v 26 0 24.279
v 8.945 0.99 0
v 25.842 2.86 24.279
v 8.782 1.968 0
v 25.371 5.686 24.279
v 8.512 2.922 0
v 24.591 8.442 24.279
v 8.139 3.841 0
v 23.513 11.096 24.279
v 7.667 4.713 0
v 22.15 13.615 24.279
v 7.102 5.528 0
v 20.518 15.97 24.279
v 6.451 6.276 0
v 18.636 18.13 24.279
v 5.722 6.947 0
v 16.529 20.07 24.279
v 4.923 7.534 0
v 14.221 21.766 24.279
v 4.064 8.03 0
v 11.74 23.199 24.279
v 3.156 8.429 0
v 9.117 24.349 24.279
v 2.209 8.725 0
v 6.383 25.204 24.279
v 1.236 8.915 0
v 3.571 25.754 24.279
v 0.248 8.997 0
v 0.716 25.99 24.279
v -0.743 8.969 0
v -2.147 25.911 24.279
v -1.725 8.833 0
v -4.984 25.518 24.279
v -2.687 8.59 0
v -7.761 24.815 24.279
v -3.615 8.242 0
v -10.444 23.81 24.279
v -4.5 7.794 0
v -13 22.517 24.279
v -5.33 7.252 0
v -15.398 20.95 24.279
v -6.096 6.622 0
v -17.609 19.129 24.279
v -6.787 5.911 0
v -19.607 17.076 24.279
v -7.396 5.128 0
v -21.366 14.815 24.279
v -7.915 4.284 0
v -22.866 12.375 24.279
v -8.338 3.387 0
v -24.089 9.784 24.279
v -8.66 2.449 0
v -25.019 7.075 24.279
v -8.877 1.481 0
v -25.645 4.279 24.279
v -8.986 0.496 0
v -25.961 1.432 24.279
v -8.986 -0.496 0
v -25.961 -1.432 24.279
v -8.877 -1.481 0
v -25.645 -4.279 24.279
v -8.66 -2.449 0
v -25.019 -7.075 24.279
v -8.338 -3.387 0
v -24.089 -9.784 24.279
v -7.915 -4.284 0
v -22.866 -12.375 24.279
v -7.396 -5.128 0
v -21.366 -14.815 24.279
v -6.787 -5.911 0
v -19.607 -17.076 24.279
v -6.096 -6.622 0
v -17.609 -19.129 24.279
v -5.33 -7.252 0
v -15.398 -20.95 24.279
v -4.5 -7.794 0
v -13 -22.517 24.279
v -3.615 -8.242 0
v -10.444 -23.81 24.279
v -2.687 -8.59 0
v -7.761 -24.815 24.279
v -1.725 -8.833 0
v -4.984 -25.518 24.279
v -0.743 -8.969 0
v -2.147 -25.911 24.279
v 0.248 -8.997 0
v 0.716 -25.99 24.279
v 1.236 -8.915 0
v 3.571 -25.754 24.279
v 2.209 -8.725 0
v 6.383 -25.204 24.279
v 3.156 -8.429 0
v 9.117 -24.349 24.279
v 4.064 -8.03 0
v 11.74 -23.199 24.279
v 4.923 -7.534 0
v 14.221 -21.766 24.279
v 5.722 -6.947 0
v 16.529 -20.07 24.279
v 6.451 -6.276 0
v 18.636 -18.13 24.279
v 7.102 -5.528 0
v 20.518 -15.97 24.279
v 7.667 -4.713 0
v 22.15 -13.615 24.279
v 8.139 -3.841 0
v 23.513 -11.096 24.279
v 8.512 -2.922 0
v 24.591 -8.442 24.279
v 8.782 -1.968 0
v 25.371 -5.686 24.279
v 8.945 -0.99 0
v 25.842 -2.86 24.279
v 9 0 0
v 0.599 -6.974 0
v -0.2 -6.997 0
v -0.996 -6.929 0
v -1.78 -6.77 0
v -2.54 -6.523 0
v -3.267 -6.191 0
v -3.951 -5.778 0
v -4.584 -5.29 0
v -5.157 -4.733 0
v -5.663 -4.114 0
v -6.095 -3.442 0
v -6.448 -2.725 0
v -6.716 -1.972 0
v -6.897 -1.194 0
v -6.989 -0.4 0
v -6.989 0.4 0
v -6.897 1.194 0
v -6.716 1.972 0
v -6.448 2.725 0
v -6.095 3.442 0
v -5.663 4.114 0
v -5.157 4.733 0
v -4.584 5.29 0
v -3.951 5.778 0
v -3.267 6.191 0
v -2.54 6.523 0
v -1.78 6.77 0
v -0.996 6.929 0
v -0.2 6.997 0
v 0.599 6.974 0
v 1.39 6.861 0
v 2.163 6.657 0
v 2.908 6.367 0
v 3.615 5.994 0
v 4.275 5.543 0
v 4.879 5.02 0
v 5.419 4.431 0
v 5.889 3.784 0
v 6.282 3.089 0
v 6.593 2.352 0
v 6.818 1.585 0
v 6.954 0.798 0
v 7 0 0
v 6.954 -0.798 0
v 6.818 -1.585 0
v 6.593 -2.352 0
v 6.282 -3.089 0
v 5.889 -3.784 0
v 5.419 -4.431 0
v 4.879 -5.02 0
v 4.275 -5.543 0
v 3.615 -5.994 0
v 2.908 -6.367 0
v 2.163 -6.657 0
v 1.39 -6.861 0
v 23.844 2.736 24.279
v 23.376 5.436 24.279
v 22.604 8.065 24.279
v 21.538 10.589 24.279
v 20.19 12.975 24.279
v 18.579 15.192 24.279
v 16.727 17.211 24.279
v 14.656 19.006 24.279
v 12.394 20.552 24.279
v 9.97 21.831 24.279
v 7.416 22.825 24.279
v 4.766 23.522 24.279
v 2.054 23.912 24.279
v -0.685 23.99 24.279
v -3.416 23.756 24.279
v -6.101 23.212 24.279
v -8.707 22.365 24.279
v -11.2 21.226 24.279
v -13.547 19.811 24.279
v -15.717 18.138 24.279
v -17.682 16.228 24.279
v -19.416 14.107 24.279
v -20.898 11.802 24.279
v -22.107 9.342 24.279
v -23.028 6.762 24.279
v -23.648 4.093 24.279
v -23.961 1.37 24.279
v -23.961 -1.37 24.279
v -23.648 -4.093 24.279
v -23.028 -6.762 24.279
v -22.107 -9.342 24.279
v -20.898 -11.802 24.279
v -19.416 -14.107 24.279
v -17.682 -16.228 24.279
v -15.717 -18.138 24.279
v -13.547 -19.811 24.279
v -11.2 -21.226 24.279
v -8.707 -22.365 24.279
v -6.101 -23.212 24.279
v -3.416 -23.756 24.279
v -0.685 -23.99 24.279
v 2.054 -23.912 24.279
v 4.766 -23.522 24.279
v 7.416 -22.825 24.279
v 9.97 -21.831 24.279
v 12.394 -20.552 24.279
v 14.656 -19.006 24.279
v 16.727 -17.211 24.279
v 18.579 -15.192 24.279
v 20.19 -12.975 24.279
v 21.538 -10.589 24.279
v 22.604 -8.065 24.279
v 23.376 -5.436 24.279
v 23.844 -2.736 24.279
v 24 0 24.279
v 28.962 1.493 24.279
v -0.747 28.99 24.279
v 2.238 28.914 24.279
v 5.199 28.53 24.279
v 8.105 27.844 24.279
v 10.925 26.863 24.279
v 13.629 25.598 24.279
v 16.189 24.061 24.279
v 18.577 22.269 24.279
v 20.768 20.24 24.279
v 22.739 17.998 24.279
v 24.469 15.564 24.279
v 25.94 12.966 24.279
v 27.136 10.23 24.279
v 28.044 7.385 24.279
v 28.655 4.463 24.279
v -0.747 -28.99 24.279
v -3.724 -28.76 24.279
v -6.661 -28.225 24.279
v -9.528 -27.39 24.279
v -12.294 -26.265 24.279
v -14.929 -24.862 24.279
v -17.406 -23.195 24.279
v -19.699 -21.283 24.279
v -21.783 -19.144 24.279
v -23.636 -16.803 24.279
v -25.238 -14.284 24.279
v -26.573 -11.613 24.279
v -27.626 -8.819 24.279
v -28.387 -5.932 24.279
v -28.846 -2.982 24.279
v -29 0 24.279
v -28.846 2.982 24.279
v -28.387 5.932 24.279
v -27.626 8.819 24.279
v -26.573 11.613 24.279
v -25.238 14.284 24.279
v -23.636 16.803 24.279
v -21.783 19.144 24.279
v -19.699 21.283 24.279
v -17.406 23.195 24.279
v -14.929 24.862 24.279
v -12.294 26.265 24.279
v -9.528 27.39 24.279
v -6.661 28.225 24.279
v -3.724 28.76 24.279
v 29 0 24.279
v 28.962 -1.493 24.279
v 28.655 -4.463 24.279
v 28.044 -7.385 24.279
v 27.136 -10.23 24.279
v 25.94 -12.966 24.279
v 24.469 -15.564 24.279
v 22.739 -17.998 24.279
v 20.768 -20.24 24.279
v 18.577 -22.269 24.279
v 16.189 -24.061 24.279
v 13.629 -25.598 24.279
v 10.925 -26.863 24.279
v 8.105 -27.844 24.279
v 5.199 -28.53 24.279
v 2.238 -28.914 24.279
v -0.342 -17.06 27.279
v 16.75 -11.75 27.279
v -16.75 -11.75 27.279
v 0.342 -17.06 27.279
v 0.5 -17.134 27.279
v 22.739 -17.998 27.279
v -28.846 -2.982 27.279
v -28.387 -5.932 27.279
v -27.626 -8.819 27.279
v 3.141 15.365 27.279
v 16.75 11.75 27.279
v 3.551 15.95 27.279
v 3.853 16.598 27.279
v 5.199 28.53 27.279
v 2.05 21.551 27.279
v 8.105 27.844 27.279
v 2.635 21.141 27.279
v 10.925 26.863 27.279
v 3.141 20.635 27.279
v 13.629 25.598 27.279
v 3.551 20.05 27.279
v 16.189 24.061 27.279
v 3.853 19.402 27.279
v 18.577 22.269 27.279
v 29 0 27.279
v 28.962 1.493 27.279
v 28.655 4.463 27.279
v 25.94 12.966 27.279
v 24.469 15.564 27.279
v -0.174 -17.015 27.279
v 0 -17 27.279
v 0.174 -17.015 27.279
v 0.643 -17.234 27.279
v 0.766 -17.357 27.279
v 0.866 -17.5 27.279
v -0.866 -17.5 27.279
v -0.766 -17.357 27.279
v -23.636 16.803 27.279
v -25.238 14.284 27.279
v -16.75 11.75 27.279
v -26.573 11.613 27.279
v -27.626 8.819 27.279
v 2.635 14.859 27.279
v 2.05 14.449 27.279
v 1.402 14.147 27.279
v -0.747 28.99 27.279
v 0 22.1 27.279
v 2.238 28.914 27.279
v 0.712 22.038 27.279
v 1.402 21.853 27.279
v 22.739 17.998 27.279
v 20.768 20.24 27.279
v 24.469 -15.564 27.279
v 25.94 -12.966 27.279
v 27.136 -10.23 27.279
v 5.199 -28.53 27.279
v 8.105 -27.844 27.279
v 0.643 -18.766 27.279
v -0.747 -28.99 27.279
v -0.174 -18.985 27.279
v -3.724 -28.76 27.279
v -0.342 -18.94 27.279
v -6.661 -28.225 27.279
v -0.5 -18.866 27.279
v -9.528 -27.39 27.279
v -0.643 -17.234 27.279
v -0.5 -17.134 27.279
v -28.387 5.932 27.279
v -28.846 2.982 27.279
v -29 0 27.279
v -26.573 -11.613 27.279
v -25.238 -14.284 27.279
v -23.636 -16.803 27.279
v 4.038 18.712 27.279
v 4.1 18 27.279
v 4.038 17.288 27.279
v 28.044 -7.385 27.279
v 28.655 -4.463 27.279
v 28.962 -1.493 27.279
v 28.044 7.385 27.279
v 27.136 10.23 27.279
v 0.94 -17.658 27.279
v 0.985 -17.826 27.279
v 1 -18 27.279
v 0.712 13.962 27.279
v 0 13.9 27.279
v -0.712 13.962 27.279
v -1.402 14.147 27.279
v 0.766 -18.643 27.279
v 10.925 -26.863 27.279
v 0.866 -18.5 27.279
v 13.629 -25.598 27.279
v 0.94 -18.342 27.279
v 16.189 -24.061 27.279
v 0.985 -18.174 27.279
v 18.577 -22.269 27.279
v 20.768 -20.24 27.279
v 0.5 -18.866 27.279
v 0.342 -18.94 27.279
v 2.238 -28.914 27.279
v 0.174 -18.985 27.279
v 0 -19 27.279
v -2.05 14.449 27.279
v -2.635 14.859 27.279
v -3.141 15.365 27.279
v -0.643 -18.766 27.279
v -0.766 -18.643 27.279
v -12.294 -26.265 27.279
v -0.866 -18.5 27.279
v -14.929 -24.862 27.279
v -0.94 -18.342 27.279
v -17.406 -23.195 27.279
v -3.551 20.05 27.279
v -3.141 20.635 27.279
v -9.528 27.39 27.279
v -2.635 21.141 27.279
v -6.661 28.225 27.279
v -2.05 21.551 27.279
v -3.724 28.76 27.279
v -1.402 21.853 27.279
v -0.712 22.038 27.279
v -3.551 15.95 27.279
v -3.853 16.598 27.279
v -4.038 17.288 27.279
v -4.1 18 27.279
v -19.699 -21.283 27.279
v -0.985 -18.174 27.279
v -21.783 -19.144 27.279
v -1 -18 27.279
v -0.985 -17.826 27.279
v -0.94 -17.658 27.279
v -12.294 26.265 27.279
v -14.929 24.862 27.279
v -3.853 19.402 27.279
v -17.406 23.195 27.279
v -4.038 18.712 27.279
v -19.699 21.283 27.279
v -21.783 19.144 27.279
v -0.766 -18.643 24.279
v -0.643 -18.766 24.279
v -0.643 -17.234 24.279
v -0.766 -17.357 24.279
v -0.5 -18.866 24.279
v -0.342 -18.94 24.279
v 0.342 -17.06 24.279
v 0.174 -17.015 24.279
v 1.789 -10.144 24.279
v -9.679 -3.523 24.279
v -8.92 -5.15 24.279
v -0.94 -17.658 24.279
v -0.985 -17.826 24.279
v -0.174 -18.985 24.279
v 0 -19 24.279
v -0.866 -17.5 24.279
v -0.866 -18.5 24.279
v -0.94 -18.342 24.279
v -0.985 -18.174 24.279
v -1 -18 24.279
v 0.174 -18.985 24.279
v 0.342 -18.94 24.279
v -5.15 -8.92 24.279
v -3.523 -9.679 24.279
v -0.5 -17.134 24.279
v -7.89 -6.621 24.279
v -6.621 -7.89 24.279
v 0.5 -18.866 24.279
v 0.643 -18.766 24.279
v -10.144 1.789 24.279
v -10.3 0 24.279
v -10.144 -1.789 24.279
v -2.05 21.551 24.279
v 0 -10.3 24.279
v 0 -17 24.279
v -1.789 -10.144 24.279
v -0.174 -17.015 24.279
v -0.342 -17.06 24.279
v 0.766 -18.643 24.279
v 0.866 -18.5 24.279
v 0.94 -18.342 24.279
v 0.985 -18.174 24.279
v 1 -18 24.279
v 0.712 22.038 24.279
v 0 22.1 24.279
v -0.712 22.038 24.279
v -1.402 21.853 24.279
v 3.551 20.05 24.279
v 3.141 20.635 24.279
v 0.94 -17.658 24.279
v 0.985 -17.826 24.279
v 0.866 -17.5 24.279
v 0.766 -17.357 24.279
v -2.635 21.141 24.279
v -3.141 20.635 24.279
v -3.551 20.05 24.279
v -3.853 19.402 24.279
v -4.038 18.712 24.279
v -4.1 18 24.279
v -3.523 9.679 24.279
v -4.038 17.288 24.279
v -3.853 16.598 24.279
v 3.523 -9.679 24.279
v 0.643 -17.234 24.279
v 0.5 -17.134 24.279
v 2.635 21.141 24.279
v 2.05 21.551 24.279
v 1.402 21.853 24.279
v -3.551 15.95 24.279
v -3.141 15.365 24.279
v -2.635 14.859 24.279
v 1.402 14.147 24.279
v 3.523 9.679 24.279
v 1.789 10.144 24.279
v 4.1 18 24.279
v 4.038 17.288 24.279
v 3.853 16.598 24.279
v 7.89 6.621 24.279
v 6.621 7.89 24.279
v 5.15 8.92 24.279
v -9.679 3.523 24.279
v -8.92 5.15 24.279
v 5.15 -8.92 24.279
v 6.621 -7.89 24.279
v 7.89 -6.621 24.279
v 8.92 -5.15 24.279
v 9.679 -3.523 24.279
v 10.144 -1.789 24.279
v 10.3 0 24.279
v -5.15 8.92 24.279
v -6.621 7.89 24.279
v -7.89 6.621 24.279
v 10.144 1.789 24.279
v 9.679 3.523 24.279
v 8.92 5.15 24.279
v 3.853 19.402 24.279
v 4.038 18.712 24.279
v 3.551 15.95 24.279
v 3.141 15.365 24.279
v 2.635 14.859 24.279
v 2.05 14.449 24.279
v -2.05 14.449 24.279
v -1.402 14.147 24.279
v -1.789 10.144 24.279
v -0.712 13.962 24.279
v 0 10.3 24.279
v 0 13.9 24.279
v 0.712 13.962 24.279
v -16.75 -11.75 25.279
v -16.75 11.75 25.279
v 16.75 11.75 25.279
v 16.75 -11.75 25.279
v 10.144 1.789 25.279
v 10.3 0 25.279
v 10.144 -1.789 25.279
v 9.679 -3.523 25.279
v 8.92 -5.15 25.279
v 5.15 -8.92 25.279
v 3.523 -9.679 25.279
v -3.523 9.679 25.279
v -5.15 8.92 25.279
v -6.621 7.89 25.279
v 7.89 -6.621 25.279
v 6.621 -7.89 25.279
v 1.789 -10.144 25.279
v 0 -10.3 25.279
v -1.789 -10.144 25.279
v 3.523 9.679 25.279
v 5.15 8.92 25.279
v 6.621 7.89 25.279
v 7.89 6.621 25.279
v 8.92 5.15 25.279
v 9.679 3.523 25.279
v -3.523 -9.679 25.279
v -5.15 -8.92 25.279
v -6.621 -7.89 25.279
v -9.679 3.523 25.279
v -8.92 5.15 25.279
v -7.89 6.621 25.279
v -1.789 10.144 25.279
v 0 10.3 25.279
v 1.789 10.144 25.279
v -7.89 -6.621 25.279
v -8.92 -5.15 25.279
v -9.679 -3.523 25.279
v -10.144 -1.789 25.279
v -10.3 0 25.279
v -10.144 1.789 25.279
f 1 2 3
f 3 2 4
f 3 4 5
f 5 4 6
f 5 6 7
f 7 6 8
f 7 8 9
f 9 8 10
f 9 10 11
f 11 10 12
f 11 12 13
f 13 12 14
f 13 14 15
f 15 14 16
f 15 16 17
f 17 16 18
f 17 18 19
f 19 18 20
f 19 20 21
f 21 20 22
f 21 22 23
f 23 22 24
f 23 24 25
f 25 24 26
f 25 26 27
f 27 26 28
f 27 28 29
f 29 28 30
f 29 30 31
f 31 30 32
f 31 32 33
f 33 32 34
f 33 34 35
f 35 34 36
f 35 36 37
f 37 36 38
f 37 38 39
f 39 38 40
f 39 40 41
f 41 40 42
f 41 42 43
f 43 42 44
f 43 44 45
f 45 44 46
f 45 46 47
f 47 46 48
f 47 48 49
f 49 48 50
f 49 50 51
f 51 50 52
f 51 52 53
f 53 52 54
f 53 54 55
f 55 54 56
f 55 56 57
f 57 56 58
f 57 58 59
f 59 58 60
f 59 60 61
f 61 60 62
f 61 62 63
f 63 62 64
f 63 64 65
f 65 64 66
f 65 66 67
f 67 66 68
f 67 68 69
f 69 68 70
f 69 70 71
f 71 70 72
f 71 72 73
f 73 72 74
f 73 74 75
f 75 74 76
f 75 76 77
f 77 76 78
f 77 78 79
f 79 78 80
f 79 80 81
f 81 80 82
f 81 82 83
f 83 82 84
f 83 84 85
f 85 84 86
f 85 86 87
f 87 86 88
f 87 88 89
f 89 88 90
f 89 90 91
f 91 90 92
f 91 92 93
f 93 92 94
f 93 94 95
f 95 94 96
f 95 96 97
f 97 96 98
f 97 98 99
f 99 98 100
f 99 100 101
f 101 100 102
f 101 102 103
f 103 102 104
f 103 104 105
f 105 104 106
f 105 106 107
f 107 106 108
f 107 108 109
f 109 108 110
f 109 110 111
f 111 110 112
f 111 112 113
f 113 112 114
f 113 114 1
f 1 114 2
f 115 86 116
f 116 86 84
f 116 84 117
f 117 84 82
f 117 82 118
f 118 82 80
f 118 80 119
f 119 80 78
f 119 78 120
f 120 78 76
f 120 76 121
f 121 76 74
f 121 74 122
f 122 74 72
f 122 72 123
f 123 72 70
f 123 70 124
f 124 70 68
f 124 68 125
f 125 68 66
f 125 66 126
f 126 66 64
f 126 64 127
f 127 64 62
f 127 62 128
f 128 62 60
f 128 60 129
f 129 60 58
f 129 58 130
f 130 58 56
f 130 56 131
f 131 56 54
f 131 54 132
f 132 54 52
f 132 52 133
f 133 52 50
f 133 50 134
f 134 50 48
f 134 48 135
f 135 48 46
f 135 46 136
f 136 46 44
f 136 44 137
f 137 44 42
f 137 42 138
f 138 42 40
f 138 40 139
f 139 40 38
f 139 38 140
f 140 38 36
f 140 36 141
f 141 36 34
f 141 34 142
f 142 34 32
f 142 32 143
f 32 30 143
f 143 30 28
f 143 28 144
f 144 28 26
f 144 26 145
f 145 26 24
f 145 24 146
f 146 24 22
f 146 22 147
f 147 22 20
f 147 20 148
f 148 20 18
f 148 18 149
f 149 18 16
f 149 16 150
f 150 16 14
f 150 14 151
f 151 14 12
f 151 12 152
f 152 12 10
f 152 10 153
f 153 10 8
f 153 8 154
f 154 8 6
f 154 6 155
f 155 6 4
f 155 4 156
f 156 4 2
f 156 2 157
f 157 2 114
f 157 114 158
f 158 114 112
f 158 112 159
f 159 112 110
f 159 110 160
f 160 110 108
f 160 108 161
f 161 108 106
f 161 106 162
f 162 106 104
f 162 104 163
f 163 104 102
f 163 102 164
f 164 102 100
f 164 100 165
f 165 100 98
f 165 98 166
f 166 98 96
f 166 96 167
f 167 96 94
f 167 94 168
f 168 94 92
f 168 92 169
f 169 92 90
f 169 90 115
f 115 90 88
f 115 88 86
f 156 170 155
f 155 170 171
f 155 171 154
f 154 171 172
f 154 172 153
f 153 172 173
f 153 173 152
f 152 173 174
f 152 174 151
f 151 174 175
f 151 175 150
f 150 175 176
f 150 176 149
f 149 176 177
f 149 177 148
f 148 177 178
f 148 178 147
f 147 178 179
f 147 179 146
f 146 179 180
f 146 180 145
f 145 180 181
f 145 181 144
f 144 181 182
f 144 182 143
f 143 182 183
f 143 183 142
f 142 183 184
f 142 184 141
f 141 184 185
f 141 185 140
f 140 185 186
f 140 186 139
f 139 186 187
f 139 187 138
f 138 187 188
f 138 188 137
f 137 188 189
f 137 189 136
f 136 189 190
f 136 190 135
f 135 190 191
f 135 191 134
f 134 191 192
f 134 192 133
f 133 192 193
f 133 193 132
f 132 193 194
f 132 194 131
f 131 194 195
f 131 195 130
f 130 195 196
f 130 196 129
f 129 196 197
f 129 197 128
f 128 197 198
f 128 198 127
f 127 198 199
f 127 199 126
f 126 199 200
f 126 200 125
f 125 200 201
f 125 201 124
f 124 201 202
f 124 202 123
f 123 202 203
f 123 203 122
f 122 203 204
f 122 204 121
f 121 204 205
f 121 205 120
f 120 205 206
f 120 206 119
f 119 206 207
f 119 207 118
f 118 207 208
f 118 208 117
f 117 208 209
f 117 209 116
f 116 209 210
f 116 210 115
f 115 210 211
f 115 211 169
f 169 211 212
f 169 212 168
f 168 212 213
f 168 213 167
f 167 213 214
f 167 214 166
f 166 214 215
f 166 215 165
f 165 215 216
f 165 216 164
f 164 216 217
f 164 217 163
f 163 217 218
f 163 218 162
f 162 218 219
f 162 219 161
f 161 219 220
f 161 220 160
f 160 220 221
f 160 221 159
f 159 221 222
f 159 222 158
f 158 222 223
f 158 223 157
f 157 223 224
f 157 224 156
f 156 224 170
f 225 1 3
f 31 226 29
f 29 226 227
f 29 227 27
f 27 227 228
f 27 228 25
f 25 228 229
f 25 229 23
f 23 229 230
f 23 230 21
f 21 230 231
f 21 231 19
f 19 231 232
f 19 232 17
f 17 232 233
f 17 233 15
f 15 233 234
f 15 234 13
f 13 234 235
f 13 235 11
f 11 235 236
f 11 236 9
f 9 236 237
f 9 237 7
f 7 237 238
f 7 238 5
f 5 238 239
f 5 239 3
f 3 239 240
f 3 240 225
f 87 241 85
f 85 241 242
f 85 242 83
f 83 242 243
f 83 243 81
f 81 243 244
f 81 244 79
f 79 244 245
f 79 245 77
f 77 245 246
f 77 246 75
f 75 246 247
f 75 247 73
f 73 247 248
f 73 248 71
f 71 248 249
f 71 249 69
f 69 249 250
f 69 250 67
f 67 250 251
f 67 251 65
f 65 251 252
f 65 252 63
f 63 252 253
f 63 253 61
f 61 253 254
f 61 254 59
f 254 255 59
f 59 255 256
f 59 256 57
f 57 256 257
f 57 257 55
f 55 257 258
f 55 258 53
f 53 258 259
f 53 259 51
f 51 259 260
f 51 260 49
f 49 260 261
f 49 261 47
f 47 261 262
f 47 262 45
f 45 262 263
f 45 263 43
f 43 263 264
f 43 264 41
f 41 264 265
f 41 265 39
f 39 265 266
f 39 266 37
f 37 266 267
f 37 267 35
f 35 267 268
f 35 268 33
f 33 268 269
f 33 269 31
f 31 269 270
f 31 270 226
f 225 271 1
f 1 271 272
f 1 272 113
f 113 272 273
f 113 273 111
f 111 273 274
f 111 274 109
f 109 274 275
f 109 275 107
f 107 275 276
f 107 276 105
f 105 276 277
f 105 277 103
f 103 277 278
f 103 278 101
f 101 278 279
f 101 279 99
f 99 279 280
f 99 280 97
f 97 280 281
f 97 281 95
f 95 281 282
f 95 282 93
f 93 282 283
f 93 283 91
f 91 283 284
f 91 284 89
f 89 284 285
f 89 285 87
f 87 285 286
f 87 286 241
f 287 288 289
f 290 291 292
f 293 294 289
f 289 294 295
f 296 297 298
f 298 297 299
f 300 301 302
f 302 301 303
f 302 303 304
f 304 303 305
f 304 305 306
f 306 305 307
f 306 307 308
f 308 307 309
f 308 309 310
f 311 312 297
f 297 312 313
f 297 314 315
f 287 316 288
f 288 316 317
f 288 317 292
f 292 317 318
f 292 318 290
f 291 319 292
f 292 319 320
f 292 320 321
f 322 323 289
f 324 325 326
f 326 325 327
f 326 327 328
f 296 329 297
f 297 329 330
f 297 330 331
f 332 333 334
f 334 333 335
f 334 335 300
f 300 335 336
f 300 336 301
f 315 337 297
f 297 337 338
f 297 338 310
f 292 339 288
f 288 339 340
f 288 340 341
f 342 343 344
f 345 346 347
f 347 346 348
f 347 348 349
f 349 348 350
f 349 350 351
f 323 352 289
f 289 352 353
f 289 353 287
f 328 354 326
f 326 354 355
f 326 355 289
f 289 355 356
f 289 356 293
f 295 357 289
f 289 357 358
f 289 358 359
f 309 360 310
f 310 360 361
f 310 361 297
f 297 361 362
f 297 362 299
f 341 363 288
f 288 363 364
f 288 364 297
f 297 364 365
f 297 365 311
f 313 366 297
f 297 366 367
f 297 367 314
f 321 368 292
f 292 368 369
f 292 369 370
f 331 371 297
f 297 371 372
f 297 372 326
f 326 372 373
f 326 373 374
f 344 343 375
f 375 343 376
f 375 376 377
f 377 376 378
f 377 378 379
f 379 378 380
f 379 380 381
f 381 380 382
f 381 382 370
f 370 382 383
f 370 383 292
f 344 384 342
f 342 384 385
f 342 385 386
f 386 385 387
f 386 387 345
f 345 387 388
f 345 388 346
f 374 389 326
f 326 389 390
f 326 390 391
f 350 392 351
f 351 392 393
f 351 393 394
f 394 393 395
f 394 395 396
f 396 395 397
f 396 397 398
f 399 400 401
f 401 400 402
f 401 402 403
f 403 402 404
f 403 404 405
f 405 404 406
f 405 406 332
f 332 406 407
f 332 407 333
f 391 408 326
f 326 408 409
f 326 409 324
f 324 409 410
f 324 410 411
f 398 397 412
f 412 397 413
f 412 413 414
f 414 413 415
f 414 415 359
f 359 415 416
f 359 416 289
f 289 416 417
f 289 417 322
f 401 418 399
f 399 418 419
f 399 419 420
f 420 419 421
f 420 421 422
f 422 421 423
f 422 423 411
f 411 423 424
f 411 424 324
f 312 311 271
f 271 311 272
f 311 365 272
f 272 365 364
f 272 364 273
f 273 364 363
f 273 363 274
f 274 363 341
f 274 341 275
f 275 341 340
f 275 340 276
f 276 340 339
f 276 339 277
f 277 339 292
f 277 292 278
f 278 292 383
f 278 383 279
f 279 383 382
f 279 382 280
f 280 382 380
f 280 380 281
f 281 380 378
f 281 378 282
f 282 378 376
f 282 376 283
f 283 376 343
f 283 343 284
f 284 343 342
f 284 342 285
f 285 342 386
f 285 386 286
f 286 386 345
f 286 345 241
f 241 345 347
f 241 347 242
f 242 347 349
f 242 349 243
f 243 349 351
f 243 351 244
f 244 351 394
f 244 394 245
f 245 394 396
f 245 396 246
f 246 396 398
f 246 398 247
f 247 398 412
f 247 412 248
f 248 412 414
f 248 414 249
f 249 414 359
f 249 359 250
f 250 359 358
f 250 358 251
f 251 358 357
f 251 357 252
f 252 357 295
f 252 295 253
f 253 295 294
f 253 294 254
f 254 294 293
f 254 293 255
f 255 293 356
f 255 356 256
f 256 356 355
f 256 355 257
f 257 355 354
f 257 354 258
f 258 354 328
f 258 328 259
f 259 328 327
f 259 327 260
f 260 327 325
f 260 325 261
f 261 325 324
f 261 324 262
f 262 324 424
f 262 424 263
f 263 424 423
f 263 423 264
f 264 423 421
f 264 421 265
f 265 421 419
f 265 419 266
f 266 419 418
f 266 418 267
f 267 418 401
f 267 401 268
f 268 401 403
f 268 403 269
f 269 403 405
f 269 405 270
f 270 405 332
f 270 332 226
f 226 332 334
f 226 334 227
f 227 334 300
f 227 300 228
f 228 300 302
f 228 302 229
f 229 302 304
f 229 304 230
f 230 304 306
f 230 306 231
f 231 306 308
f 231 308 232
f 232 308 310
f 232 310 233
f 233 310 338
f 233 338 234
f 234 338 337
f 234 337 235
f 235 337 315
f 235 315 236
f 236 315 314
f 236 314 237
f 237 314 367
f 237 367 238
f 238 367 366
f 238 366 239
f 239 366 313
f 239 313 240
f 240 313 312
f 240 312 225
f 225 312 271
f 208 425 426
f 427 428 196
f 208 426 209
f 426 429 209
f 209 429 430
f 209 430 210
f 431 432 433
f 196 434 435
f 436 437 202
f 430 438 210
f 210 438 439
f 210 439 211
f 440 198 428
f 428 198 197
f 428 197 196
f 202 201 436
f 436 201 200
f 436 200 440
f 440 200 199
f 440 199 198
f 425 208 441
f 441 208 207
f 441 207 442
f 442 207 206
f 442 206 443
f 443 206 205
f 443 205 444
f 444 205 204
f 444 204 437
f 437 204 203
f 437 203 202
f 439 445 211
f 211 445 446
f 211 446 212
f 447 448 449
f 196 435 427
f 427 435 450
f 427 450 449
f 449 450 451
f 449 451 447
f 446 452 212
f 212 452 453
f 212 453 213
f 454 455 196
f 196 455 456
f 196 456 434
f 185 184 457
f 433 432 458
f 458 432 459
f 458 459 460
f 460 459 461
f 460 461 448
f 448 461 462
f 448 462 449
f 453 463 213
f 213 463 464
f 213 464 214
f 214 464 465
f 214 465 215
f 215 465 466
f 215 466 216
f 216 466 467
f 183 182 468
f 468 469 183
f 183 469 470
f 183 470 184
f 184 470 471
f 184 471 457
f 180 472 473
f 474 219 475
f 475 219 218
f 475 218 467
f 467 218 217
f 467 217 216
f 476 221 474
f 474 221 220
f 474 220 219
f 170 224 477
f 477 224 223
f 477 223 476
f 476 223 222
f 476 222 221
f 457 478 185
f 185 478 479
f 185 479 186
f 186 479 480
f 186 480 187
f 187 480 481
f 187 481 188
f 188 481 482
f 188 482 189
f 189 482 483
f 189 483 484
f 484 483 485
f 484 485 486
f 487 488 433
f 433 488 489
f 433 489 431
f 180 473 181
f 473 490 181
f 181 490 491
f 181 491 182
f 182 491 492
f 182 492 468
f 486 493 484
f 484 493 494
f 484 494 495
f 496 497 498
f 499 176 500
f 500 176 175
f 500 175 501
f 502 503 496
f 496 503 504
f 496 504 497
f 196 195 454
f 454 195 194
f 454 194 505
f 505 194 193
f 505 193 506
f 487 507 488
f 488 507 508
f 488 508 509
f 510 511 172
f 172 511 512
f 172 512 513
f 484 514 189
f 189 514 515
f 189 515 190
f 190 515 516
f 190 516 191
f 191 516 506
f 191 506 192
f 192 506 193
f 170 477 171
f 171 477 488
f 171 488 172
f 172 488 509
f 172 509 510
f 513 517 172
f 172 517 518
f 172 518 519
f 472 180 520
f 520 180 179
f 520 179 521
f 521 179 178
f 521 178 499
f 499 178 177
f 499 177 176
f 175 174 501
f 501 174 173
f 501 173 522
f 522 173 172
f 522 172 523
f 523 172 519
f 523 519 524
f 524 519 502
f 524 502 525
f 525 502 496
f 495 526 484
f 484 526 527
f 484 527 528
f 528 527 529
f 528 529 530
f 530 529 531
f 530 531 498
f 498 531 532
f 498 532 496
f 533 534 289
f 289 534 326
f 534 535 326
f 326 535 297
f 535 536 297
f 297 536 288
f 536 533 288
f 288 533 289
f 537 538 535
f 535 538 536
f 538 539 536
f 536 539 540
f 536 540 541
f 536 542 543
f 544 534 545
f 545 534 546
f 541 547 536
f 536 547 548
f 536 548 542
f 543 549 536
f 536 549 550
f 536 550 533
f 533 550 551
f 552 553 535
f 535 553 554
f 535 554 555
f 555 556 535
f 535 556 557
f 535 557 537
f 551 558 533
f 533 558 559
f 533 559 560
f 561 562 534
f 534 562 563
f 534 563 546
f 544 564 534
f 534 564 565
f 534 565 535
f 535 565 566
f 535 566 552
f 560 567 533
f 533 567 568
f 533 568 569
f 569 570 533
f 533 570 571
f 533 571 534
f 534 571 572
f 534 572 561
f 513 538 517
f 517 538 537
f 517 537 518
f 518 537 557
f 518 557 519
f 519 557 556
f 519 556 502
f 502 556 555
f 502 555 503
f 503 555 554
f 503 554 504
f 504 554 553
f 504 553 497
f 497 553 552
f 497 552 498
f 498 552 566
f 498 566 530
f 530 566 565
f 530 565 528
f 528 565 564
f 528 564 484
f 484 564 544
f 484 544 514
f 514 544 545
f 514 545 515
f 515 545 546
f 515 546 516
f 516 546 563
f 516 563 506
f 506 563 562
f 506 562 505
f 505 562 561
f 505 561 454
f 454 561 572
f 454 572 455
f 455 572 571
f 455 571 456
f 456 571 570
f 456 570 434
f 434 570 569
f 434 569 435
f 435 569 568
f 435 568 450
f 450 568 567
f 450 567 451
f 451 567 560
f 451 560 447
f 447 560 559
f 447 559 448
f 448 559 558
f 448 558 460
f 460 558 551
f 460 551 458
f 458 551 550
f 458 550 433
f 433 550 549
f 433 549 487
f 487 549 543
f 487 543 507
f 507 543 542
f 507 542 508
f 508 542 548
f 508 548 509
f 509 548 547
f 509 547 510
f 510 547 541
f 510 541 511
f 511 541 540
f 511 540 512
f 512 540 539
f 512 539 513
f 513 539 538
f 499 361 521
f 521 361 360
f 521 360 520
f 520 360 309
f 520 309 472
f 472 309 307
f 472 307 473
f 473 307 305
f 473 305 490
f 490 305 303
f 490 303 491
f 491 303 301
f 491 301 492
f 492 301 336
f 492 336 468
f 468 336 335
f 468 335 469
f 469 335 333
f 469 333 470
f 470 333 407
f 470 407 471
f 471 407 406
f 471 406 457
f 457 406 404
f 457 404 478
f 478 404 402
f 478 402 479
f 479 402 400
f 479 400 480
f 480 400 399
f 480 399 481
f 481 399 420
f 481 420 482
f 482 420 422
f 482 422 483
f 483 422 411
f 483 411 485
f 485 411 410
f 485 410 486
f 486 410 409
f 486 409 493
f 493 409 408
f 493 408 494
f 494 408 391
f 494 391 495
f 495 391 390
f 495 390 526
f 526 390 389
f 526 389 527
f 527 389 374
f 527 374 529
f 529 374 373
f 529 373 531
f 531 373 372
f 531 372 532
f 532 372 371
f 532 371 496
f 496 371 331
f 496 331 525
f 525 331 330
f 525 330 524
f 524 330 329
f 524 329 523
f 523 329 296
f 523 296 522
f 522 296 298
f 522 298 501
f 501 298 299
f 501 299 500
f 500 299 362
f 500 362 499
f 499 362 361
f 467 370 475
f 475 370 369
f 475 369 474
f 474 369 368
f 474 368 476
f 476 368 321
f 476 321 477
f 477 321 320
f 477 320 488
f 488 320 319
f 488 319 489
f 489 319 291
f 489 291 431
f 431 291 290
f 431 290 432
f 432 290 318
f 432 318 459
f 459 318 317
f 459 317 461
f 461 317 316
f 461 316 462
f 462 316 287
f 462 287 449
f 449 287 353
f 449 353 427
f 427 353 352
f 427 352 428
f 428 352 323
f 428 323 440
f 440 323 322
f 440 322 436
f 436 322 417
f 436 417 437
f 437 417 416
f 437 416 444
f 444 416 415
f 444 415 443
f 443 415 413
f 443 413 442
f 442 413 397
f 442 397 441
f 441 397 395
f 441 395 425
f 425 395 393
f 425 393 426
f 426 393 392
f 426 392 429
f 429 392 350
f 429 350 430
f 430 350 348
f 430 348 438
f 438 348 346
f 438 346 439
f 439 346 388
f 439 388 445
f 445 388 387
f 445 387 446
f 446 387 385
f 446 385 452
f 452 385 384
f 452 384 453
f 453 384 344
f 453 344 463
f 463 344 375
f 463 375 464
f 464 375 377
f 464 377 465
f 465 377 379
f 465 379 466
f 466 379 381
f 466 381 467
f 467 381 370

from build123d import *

# Parameters (mm, degrees)
SKETCH1_R                 = 9
SEAL_CONE_DEPTH           = 24.278516115
SEAL_CONE_DRAFT           = -35
SKETCH2_R                 = 7
CONE_HOLLOW_DEPTH         = 24.278516115
CONE_HOLLOW_DRAFT         = -35
SKETCH3_R                 = 29
TOP_PLATE_DEPTH           = 3
SKETCH4_W                 = 33.5
SKETCH4_H                 = 23.5
MQ3_PCB_POCKET_DEPTH      = 1.25
SKETCH5_R                 = 10.3
SKETCH5_R_2               = 4.1
SKETCH5_R_3               = 1
CAN_HOSE_VENT_HOLES_DEPTH = 1.9


with BuildPart() as part:
    # Sketch1 → Seal_cone (with draft: the straight prism first)
    with BuildSketch(Plane.XY):
        Circle(SKETCH1_R)
    extrude(amount=SEAL_CONE_DEPTH)
    # Seal_cone: the draft: its side faces are tilted about the plane it starts from
    seal_cone_sides = [part.faces().sort_by_distance(p)[0] for p in [
        (-9, 0, 12.139258057),
    ]]
    draft(seal_cone_sides, Plane.XY, SEAL_CONE_DRAFT)


with BuildPart() as cone_hollow_tool:
    # Sketch2 → Cone_hollow (with draft: the straight prism first)
    with BuildSketch(Plane.XY):
        Circle(SKETCH2_R)
    extrude(amount=CONE_HOLLOW_DEPTH)
    # Cone_hollow: the draft: its side faces are tilted about the plane it starts from
    cone_hollow_sides = [cone_hollow_tool.faces().sort_by_distance(p)[0] for p in [
        (-7, 0, 12.139258057),
    ]]
    draft(cone_hollow_sides, Plane.XY, CONE_HOLLOW_DRAFT)


with BuildPart() as part_1:
    add(part.part)

    # Cone_hollow: cut by cone_hollow_tool
    add(cone_hollow_tool.part, mode=Mode.SUBTRACT)

    # Sketch3 → Top_plate (add)
    with BuildSketch(Plane.XY.offset(24.278516115)):
        Circle(SKETCH3_R)
    extrude(amount=TOP_PLATE_DEPTH)

    # Sketch4 → MQ3_pcb_pocket (cut, symmetric)
    with BuildSketch(Plane.XY.offset(26.528516115)):
        Rectangle(SKETCH4_W, SKETCH4_H)
    extrude(amount=MQ3_PCB_POCKET_DEPTH, both=True, mode=Mode.SUBTRACT)

    # Sketch5 → Can_hose_vent_holes (cut, symmetric)
    with BuildSketch(Plane.XY.offset(25.878516115)):
        Circle(SKETCH5_R)
        with Locations((0, 18)):
            Circle(SKETCH5_R_2)
        with Locations((0, -18)):
            Circle(SKETCH5_R_3)
    extrude(amount=CAN_HOSE_VENT_HOLES_DEPTH, both=True, mode=Mode.SUBTRACT)


solid = part_1.part
